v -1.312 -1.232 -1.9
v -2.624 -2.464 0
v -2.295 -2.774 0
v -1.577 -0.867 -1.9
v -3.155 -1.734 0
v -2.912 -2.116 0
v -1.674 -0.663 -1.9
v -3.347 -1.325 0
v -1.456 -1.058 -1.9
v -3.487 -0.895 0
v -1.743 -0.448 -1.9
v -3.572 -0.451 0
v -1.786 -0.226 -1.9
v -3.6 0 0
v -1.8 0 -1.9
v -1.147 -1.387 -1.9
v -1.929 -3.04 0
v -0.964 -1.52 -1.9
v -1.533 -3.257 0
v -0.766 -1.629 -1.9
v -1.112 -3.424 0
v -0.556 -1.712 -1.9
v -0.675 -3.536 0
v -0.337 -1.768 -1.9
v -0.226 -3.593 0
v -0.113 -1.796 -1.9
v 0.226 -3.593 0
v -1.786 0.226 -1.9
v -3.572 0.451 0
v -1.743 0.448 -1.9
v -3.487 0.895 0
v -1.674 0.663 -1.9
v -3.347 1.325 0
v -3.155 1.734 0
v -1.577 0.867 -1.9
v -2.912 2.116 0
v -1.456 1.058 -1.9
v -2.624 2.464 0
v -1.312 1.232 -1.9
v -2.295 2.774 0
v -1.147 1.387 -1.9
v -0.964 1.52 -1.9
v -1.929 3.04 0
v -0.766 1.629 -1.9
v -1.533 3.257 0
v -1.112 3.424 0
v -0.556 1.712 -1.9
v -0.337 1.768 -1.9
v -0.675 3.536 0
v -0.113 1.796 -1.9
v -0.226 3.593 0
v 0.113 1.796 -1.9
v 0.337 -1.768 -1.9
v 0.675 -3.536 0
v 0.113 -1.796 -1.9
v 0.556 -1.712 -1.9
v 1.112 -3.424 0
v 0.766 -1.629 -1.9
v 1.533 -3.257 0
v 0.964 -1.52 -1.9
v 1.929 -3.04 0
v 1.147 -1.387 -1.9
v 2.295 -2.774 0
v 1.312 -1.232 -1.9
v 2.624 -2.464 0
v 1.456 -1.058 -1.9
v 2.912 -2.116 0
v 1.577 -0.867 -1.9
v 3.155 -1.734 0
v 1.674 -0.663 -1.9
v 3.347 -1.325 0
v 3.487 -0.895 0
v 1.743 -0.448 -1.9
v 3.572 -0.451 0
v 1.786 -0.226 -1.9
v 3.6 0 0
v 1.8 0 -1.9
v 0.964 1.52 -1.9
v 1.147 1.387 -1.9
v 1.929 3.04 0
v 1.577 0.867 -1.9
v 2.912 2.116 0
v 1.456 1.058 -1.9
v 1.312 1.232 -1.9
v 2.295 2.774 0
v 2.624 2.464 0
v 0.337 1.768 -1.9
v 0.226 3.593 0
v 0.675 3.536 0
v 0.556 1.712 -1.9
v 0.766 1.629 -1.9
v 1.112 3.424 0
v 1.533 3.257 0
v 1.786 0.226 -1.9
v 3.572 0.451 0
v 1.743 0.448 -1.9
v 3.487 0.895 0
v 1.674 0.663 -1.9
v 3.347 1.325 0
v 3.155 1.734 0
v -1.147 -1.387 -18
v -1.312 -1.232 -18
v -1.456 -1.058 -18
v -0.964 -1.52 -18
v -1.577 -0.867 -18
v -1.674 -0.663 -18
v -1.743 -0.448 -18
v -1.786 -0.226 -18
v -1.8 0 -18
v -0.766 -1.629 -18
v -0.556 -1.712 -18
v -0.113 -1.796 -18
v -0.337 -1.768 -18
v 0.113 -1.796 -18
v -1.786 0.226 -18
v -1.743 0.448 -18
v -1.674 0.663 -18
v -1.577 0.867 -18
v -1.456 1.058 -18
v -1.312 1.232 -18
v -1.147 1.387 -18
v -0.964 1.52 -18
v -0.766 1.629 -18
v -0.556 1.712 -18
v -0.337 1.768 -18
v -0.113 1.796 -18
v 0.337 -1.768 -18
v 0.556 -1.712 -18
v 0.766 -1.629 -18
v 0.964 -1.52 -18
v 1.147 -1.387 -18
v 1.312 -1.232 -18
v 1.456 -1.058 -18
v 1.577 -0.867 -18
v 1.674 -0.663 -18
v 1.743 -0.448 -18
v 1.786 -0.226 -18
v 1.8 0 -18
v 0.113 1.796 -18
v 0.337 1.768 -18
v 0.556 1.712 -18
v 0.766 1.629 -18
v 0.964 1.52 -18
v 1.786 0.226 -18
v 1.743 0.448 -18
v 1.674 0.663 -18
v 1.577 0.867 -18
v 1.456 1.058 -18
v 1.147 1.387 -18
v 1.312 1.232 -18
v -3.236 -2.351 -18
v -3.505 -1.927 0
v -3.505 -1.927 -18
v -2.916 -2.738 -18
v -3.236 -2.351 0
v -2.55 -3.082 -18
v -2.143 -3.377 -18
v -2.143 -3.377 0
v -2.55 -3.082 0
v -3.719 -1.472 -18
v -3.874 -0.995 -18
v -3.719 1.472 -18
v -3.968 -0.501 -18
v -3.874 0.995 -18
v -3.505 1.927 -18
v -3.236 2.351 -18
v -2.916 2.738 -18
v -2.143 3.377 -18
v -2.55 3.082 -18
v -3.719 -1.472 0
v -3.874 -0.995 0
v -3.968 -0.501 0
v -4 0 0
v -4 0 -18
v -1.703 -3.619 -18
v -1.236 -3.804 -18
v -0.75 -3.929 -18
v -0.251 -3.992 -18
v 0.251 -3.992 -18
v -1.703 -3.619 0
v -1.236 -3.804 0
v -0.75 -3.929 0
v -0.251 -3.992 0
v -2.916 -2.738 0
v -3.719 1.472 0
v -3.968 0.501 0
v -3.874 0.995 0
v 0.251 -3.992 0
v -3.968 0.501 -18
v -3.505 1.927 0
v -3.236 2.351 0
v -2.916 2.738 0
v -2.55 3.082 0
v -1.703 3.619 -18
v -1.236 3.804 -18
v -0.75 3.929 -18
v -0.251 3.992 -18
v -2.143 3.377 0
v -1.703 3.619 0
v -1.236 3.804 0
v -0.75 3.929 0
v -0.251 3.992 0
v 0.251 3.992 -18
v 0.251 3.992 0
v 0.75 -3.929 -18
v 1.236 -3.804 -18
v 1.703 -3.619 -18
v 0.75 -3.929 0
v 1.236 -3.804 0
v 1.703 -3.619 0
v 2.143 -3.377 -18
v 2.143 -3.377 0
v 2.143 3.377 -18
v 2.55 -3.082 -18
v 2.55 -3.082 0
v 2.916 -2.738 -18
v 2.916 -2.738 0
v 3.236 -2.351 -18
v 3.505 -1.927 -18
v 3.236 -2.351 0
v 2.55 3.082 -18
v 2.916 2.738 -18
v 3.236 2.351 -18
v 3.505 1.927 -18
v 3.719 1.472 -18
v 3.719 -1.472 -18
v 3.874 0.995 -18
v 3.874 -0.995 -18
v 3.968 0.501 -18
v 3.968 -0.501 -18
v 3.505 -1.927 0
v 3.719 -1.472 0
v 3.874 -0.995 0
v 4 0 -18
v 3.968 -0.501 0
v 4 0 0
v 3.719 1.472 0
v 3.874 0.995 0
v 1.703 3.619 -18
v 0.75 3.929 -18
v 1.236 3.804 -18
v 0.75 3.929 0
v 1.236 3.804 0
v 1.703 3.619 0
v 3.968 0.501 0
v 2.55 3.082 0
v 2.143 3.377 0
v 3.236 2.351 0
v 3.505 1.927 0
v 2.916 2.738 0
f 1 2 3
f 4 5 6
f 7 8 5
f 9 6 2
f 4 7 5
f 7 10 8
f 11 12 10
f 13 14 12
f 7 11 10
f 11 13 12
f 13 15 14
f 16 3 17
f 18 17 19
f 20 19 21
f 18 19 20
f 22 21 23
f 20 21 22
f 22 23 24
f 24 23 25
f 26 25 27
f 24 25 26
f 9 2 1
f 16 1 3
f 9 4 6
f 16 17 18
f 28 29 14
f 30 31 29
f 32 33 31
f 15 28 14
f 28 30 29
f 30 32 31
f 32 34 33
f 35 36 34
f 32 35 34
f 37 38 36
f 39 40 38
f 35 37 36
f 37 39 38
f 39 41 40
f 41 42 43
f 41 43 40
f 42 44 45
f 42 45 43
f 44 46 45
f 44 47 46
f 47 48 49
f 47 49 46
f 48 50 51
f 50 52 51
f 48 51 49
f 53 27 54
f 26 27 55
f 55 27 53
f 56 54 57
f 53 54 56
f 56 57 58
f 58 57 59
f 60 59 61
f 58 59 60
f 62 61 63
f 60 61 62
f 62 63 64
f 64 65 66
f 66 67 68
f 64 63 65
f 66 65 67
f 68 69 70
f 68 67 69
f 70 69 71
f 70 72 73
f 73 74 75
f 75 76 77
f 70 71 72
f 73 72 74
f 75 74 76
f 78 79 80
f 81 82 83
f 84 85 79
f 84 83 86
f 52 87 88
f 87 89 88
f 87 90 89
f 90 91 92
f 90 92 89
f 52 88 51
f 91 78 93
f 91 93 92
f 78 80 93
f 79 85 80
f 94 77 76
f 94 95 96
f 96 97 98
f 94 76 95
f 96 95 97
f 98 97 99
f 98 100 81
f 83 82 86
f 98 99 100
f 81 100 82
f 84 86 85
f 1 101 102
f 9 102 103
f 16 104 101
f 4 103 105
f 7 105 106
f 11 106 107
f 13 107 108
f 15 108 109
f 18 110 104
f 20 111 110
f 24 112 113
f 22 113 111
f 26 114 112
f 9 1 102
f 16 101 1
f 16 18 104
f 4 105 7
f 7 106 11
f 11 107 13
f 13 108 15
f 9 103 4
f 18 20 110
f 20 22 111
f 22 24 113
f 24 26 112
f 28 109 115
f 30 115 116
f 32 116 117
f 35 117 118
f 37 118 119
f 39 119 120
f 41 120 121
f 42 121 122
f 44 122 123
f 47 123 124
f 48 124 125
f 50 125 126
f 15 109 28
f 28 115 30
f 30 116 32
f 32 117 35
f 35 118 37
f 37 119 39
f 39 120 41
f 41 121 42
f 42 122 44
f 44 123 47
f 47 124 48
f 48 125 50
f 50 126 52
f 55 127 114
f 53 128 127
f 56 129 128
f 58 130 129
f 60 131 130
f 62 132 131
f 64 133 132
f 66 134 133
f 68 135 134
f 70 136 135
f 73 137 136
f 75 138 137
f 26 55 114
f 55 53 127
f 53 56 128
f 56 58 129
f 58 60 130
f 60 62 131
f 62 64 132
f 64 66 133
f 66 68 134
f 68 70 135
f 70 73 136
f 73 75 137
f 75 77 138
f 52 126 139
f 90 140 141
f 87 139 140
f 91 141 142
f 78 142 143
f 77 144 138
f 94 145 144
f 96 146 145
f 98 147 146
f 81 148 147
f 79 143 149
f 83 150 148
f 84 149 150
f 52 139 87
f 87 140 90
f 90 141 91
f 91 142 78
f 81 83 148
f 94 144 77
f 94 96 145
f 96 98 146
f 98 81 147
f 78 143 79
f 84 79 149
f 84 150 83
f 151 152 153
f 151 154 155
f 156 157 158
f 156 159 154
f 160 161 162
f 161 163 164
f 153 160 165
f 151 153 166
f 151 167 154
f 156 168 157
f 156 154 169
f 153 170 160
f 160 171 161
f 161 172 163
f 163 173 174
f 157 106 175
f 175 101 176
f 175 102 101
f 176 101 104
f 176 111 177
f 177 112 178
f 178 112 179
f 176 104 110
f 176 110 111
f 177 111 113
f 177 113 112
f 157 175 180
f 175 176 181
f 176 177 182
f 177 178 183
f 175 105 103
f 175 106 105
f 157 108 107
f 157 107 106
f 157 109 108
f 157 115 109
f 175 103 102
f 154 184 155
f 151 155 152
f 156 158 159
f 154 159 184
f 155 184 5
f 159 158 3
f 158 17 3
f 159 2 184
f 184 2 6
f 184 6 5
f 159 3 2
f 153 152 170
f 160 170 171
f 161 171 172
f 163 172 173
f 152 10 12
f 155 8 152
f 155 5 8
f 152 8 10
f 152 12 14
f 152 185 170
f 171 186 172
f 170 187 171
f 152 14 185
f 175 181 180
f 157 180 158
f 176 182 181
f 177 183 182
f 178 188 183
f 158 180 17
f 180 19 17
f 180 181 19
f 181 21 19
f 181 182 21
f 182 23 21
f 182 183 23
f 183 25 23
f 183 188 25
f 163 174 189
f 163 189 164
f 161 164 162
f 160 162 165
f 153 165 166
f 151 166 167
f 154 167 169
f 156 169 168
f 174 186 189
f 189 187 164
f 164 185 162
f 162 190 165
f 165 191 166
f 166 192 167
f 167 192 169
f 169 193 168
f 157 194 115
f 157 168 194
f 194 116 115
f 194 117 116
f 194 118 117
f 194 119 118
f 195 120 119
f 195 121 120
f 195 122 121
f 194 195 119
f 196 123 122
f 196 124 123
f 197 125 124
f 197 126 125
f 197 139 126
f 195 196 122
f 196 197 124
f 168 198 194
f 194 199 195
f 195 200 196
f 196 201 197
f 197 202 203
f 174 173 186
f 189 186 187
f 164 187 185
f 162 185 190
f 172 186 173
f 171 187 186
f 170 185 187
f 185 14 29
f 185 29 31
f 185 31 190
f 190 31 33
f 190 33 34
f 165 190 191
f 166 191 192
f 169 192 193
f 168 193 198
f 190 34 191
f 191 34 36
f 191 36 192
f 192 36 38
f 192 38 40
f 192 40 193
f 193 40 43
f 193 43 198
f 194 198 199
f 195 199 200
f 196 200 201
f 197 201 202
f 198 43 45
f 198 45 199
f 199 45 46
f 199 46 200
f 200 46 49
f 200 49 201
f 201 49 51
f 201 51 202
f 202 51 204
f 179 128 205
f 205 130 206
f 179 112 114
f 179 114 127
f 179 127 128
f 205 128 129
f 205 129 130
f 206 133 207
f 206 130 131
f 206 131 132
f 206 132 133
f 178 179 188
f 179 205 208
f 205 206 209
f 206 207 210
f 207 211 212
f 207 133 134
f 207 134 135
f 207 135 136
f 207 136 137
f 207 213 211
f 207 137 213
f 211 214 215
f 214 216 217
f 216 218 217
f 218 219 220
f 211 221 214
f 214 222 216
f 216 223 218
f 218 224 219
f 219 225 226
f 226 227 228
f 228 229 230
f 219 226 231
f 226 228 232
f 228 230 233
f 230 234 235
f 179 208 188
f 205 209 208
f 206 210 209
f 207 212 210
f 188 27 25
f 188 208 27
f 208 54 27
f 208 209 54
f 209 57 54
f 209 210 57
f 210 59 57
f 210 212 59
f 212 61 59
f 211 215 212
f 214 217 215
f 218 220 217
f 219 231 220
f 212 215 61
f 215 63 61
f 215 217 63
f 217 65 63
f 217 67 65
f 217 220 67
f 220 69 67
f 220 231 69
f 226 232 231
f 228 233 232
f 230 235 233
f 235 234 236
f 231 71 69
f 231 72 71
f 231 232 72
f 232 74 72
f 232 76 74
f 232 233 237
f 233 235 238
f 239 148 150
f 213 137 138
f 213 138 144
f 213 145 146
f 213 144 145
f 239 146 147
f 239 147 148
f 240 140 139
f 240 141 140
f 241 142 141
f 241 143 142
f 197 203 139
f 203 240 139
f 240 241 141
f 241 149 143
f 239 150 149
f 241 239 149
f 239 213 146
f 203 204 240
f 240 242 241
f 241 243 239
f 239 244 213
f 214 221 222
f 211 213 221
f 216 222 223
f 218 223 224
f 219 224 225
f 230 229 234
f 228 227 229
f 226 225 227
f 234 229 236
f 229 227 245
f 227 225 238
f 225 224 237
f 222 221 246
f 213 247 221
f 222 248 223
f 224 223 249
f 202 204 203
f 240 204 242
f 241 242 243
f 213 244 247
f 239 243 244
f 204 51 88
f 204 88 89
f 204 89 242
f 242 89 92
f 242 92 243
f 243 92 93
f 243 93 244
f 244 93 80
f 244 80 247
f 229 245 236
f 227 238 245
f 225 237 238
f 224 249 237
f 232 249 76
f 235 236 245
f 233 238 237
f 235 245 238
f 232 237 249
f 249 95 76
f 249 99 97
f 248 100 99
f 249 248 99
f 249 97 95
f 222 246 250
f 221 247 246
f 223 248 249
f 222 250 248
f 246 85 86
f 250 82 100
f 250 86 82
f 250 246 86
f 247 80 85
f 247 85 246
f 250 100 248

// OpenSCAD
$fn = 50;

difference() {
	union() {
		translate(v = [0, 0, -18.0]) {
			cylinder(h = 18, r = 4.0);
		}
	}
	union() {
		translate(v = [0, 0, 0]) {
			rotate(a = [0, 0, 0]) {
				difference() {
					union() {
						translate(v = [0, 0, -21.0]) {
							cylinder(h = 21, r = 1.5);
						}
						translate(v = [0, 0, -1.9]) {
							cylinder(h = 1.9, r1 = 1.8, r2 = 3.6);
						}
						translate(v = [0, 0, -21.0]) {
							cylinder(h = 21, r = 1.8);
						}
						translate(v = [0, 0, -21.0]) {
							cylinder(h = 21, r = 1.5);
						}
					}
					union();
				}
			}
		}
	}
}
